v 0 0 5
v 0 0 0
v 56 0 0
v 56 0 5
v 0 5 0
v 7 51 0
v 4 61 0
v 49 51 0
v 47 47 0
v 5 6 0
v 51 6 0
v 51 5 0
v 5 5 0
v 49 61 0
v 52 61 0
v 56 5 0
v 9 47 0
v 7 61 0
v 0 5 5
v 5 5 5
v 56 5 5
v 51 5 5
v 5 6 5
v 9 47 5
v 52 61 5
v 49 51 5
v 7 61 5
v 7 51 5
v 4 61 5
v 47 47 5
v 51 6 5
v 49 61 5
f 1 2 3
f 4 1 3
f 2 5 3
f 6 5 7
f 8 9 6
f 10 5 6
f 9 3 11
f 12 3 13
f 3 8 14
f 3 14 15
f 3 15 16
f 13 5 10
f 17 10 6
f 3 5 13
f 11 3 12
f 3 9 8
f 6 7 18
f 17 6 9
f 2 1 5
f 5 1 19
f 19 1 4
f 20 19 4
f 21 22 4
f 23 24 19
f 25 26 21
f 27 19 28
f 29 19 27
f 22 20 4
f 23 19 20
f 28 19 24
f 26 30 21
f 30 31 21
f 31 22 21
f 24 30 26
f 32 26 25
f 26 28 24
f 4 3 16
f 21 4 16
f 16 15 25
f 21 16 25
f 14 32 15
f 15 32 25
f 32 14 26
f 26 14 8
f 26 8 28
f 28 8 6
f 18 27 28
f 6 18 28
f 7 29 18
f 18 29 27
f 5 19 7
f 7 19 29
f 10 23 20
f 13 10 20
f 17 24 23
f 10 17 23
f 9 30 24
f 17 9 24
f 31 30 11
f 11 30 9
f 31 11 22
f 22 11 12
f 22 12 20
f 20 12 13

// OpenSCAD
deck=42;
side=3;
floor=51;
slope=4;
depth=10;

thickness = 5;

difference() {
hull() {
cube([deck+2*side+slope*2, thickness, thickness]);
translate([slope, floor, 0]) cube([deck+2*side, depth, thickness]);
}

translate([slope+side, floor, 0]) cube([deck, depth, thickness]);

hull() {
       translate([thickness, thickness,0]) cube([deck+2*(side+slope-thickness), 1,thickness]);
       translate([thickness+slope, floor-thickness, 0]) cube([deck-slope, 1,thickness]);
}

}
